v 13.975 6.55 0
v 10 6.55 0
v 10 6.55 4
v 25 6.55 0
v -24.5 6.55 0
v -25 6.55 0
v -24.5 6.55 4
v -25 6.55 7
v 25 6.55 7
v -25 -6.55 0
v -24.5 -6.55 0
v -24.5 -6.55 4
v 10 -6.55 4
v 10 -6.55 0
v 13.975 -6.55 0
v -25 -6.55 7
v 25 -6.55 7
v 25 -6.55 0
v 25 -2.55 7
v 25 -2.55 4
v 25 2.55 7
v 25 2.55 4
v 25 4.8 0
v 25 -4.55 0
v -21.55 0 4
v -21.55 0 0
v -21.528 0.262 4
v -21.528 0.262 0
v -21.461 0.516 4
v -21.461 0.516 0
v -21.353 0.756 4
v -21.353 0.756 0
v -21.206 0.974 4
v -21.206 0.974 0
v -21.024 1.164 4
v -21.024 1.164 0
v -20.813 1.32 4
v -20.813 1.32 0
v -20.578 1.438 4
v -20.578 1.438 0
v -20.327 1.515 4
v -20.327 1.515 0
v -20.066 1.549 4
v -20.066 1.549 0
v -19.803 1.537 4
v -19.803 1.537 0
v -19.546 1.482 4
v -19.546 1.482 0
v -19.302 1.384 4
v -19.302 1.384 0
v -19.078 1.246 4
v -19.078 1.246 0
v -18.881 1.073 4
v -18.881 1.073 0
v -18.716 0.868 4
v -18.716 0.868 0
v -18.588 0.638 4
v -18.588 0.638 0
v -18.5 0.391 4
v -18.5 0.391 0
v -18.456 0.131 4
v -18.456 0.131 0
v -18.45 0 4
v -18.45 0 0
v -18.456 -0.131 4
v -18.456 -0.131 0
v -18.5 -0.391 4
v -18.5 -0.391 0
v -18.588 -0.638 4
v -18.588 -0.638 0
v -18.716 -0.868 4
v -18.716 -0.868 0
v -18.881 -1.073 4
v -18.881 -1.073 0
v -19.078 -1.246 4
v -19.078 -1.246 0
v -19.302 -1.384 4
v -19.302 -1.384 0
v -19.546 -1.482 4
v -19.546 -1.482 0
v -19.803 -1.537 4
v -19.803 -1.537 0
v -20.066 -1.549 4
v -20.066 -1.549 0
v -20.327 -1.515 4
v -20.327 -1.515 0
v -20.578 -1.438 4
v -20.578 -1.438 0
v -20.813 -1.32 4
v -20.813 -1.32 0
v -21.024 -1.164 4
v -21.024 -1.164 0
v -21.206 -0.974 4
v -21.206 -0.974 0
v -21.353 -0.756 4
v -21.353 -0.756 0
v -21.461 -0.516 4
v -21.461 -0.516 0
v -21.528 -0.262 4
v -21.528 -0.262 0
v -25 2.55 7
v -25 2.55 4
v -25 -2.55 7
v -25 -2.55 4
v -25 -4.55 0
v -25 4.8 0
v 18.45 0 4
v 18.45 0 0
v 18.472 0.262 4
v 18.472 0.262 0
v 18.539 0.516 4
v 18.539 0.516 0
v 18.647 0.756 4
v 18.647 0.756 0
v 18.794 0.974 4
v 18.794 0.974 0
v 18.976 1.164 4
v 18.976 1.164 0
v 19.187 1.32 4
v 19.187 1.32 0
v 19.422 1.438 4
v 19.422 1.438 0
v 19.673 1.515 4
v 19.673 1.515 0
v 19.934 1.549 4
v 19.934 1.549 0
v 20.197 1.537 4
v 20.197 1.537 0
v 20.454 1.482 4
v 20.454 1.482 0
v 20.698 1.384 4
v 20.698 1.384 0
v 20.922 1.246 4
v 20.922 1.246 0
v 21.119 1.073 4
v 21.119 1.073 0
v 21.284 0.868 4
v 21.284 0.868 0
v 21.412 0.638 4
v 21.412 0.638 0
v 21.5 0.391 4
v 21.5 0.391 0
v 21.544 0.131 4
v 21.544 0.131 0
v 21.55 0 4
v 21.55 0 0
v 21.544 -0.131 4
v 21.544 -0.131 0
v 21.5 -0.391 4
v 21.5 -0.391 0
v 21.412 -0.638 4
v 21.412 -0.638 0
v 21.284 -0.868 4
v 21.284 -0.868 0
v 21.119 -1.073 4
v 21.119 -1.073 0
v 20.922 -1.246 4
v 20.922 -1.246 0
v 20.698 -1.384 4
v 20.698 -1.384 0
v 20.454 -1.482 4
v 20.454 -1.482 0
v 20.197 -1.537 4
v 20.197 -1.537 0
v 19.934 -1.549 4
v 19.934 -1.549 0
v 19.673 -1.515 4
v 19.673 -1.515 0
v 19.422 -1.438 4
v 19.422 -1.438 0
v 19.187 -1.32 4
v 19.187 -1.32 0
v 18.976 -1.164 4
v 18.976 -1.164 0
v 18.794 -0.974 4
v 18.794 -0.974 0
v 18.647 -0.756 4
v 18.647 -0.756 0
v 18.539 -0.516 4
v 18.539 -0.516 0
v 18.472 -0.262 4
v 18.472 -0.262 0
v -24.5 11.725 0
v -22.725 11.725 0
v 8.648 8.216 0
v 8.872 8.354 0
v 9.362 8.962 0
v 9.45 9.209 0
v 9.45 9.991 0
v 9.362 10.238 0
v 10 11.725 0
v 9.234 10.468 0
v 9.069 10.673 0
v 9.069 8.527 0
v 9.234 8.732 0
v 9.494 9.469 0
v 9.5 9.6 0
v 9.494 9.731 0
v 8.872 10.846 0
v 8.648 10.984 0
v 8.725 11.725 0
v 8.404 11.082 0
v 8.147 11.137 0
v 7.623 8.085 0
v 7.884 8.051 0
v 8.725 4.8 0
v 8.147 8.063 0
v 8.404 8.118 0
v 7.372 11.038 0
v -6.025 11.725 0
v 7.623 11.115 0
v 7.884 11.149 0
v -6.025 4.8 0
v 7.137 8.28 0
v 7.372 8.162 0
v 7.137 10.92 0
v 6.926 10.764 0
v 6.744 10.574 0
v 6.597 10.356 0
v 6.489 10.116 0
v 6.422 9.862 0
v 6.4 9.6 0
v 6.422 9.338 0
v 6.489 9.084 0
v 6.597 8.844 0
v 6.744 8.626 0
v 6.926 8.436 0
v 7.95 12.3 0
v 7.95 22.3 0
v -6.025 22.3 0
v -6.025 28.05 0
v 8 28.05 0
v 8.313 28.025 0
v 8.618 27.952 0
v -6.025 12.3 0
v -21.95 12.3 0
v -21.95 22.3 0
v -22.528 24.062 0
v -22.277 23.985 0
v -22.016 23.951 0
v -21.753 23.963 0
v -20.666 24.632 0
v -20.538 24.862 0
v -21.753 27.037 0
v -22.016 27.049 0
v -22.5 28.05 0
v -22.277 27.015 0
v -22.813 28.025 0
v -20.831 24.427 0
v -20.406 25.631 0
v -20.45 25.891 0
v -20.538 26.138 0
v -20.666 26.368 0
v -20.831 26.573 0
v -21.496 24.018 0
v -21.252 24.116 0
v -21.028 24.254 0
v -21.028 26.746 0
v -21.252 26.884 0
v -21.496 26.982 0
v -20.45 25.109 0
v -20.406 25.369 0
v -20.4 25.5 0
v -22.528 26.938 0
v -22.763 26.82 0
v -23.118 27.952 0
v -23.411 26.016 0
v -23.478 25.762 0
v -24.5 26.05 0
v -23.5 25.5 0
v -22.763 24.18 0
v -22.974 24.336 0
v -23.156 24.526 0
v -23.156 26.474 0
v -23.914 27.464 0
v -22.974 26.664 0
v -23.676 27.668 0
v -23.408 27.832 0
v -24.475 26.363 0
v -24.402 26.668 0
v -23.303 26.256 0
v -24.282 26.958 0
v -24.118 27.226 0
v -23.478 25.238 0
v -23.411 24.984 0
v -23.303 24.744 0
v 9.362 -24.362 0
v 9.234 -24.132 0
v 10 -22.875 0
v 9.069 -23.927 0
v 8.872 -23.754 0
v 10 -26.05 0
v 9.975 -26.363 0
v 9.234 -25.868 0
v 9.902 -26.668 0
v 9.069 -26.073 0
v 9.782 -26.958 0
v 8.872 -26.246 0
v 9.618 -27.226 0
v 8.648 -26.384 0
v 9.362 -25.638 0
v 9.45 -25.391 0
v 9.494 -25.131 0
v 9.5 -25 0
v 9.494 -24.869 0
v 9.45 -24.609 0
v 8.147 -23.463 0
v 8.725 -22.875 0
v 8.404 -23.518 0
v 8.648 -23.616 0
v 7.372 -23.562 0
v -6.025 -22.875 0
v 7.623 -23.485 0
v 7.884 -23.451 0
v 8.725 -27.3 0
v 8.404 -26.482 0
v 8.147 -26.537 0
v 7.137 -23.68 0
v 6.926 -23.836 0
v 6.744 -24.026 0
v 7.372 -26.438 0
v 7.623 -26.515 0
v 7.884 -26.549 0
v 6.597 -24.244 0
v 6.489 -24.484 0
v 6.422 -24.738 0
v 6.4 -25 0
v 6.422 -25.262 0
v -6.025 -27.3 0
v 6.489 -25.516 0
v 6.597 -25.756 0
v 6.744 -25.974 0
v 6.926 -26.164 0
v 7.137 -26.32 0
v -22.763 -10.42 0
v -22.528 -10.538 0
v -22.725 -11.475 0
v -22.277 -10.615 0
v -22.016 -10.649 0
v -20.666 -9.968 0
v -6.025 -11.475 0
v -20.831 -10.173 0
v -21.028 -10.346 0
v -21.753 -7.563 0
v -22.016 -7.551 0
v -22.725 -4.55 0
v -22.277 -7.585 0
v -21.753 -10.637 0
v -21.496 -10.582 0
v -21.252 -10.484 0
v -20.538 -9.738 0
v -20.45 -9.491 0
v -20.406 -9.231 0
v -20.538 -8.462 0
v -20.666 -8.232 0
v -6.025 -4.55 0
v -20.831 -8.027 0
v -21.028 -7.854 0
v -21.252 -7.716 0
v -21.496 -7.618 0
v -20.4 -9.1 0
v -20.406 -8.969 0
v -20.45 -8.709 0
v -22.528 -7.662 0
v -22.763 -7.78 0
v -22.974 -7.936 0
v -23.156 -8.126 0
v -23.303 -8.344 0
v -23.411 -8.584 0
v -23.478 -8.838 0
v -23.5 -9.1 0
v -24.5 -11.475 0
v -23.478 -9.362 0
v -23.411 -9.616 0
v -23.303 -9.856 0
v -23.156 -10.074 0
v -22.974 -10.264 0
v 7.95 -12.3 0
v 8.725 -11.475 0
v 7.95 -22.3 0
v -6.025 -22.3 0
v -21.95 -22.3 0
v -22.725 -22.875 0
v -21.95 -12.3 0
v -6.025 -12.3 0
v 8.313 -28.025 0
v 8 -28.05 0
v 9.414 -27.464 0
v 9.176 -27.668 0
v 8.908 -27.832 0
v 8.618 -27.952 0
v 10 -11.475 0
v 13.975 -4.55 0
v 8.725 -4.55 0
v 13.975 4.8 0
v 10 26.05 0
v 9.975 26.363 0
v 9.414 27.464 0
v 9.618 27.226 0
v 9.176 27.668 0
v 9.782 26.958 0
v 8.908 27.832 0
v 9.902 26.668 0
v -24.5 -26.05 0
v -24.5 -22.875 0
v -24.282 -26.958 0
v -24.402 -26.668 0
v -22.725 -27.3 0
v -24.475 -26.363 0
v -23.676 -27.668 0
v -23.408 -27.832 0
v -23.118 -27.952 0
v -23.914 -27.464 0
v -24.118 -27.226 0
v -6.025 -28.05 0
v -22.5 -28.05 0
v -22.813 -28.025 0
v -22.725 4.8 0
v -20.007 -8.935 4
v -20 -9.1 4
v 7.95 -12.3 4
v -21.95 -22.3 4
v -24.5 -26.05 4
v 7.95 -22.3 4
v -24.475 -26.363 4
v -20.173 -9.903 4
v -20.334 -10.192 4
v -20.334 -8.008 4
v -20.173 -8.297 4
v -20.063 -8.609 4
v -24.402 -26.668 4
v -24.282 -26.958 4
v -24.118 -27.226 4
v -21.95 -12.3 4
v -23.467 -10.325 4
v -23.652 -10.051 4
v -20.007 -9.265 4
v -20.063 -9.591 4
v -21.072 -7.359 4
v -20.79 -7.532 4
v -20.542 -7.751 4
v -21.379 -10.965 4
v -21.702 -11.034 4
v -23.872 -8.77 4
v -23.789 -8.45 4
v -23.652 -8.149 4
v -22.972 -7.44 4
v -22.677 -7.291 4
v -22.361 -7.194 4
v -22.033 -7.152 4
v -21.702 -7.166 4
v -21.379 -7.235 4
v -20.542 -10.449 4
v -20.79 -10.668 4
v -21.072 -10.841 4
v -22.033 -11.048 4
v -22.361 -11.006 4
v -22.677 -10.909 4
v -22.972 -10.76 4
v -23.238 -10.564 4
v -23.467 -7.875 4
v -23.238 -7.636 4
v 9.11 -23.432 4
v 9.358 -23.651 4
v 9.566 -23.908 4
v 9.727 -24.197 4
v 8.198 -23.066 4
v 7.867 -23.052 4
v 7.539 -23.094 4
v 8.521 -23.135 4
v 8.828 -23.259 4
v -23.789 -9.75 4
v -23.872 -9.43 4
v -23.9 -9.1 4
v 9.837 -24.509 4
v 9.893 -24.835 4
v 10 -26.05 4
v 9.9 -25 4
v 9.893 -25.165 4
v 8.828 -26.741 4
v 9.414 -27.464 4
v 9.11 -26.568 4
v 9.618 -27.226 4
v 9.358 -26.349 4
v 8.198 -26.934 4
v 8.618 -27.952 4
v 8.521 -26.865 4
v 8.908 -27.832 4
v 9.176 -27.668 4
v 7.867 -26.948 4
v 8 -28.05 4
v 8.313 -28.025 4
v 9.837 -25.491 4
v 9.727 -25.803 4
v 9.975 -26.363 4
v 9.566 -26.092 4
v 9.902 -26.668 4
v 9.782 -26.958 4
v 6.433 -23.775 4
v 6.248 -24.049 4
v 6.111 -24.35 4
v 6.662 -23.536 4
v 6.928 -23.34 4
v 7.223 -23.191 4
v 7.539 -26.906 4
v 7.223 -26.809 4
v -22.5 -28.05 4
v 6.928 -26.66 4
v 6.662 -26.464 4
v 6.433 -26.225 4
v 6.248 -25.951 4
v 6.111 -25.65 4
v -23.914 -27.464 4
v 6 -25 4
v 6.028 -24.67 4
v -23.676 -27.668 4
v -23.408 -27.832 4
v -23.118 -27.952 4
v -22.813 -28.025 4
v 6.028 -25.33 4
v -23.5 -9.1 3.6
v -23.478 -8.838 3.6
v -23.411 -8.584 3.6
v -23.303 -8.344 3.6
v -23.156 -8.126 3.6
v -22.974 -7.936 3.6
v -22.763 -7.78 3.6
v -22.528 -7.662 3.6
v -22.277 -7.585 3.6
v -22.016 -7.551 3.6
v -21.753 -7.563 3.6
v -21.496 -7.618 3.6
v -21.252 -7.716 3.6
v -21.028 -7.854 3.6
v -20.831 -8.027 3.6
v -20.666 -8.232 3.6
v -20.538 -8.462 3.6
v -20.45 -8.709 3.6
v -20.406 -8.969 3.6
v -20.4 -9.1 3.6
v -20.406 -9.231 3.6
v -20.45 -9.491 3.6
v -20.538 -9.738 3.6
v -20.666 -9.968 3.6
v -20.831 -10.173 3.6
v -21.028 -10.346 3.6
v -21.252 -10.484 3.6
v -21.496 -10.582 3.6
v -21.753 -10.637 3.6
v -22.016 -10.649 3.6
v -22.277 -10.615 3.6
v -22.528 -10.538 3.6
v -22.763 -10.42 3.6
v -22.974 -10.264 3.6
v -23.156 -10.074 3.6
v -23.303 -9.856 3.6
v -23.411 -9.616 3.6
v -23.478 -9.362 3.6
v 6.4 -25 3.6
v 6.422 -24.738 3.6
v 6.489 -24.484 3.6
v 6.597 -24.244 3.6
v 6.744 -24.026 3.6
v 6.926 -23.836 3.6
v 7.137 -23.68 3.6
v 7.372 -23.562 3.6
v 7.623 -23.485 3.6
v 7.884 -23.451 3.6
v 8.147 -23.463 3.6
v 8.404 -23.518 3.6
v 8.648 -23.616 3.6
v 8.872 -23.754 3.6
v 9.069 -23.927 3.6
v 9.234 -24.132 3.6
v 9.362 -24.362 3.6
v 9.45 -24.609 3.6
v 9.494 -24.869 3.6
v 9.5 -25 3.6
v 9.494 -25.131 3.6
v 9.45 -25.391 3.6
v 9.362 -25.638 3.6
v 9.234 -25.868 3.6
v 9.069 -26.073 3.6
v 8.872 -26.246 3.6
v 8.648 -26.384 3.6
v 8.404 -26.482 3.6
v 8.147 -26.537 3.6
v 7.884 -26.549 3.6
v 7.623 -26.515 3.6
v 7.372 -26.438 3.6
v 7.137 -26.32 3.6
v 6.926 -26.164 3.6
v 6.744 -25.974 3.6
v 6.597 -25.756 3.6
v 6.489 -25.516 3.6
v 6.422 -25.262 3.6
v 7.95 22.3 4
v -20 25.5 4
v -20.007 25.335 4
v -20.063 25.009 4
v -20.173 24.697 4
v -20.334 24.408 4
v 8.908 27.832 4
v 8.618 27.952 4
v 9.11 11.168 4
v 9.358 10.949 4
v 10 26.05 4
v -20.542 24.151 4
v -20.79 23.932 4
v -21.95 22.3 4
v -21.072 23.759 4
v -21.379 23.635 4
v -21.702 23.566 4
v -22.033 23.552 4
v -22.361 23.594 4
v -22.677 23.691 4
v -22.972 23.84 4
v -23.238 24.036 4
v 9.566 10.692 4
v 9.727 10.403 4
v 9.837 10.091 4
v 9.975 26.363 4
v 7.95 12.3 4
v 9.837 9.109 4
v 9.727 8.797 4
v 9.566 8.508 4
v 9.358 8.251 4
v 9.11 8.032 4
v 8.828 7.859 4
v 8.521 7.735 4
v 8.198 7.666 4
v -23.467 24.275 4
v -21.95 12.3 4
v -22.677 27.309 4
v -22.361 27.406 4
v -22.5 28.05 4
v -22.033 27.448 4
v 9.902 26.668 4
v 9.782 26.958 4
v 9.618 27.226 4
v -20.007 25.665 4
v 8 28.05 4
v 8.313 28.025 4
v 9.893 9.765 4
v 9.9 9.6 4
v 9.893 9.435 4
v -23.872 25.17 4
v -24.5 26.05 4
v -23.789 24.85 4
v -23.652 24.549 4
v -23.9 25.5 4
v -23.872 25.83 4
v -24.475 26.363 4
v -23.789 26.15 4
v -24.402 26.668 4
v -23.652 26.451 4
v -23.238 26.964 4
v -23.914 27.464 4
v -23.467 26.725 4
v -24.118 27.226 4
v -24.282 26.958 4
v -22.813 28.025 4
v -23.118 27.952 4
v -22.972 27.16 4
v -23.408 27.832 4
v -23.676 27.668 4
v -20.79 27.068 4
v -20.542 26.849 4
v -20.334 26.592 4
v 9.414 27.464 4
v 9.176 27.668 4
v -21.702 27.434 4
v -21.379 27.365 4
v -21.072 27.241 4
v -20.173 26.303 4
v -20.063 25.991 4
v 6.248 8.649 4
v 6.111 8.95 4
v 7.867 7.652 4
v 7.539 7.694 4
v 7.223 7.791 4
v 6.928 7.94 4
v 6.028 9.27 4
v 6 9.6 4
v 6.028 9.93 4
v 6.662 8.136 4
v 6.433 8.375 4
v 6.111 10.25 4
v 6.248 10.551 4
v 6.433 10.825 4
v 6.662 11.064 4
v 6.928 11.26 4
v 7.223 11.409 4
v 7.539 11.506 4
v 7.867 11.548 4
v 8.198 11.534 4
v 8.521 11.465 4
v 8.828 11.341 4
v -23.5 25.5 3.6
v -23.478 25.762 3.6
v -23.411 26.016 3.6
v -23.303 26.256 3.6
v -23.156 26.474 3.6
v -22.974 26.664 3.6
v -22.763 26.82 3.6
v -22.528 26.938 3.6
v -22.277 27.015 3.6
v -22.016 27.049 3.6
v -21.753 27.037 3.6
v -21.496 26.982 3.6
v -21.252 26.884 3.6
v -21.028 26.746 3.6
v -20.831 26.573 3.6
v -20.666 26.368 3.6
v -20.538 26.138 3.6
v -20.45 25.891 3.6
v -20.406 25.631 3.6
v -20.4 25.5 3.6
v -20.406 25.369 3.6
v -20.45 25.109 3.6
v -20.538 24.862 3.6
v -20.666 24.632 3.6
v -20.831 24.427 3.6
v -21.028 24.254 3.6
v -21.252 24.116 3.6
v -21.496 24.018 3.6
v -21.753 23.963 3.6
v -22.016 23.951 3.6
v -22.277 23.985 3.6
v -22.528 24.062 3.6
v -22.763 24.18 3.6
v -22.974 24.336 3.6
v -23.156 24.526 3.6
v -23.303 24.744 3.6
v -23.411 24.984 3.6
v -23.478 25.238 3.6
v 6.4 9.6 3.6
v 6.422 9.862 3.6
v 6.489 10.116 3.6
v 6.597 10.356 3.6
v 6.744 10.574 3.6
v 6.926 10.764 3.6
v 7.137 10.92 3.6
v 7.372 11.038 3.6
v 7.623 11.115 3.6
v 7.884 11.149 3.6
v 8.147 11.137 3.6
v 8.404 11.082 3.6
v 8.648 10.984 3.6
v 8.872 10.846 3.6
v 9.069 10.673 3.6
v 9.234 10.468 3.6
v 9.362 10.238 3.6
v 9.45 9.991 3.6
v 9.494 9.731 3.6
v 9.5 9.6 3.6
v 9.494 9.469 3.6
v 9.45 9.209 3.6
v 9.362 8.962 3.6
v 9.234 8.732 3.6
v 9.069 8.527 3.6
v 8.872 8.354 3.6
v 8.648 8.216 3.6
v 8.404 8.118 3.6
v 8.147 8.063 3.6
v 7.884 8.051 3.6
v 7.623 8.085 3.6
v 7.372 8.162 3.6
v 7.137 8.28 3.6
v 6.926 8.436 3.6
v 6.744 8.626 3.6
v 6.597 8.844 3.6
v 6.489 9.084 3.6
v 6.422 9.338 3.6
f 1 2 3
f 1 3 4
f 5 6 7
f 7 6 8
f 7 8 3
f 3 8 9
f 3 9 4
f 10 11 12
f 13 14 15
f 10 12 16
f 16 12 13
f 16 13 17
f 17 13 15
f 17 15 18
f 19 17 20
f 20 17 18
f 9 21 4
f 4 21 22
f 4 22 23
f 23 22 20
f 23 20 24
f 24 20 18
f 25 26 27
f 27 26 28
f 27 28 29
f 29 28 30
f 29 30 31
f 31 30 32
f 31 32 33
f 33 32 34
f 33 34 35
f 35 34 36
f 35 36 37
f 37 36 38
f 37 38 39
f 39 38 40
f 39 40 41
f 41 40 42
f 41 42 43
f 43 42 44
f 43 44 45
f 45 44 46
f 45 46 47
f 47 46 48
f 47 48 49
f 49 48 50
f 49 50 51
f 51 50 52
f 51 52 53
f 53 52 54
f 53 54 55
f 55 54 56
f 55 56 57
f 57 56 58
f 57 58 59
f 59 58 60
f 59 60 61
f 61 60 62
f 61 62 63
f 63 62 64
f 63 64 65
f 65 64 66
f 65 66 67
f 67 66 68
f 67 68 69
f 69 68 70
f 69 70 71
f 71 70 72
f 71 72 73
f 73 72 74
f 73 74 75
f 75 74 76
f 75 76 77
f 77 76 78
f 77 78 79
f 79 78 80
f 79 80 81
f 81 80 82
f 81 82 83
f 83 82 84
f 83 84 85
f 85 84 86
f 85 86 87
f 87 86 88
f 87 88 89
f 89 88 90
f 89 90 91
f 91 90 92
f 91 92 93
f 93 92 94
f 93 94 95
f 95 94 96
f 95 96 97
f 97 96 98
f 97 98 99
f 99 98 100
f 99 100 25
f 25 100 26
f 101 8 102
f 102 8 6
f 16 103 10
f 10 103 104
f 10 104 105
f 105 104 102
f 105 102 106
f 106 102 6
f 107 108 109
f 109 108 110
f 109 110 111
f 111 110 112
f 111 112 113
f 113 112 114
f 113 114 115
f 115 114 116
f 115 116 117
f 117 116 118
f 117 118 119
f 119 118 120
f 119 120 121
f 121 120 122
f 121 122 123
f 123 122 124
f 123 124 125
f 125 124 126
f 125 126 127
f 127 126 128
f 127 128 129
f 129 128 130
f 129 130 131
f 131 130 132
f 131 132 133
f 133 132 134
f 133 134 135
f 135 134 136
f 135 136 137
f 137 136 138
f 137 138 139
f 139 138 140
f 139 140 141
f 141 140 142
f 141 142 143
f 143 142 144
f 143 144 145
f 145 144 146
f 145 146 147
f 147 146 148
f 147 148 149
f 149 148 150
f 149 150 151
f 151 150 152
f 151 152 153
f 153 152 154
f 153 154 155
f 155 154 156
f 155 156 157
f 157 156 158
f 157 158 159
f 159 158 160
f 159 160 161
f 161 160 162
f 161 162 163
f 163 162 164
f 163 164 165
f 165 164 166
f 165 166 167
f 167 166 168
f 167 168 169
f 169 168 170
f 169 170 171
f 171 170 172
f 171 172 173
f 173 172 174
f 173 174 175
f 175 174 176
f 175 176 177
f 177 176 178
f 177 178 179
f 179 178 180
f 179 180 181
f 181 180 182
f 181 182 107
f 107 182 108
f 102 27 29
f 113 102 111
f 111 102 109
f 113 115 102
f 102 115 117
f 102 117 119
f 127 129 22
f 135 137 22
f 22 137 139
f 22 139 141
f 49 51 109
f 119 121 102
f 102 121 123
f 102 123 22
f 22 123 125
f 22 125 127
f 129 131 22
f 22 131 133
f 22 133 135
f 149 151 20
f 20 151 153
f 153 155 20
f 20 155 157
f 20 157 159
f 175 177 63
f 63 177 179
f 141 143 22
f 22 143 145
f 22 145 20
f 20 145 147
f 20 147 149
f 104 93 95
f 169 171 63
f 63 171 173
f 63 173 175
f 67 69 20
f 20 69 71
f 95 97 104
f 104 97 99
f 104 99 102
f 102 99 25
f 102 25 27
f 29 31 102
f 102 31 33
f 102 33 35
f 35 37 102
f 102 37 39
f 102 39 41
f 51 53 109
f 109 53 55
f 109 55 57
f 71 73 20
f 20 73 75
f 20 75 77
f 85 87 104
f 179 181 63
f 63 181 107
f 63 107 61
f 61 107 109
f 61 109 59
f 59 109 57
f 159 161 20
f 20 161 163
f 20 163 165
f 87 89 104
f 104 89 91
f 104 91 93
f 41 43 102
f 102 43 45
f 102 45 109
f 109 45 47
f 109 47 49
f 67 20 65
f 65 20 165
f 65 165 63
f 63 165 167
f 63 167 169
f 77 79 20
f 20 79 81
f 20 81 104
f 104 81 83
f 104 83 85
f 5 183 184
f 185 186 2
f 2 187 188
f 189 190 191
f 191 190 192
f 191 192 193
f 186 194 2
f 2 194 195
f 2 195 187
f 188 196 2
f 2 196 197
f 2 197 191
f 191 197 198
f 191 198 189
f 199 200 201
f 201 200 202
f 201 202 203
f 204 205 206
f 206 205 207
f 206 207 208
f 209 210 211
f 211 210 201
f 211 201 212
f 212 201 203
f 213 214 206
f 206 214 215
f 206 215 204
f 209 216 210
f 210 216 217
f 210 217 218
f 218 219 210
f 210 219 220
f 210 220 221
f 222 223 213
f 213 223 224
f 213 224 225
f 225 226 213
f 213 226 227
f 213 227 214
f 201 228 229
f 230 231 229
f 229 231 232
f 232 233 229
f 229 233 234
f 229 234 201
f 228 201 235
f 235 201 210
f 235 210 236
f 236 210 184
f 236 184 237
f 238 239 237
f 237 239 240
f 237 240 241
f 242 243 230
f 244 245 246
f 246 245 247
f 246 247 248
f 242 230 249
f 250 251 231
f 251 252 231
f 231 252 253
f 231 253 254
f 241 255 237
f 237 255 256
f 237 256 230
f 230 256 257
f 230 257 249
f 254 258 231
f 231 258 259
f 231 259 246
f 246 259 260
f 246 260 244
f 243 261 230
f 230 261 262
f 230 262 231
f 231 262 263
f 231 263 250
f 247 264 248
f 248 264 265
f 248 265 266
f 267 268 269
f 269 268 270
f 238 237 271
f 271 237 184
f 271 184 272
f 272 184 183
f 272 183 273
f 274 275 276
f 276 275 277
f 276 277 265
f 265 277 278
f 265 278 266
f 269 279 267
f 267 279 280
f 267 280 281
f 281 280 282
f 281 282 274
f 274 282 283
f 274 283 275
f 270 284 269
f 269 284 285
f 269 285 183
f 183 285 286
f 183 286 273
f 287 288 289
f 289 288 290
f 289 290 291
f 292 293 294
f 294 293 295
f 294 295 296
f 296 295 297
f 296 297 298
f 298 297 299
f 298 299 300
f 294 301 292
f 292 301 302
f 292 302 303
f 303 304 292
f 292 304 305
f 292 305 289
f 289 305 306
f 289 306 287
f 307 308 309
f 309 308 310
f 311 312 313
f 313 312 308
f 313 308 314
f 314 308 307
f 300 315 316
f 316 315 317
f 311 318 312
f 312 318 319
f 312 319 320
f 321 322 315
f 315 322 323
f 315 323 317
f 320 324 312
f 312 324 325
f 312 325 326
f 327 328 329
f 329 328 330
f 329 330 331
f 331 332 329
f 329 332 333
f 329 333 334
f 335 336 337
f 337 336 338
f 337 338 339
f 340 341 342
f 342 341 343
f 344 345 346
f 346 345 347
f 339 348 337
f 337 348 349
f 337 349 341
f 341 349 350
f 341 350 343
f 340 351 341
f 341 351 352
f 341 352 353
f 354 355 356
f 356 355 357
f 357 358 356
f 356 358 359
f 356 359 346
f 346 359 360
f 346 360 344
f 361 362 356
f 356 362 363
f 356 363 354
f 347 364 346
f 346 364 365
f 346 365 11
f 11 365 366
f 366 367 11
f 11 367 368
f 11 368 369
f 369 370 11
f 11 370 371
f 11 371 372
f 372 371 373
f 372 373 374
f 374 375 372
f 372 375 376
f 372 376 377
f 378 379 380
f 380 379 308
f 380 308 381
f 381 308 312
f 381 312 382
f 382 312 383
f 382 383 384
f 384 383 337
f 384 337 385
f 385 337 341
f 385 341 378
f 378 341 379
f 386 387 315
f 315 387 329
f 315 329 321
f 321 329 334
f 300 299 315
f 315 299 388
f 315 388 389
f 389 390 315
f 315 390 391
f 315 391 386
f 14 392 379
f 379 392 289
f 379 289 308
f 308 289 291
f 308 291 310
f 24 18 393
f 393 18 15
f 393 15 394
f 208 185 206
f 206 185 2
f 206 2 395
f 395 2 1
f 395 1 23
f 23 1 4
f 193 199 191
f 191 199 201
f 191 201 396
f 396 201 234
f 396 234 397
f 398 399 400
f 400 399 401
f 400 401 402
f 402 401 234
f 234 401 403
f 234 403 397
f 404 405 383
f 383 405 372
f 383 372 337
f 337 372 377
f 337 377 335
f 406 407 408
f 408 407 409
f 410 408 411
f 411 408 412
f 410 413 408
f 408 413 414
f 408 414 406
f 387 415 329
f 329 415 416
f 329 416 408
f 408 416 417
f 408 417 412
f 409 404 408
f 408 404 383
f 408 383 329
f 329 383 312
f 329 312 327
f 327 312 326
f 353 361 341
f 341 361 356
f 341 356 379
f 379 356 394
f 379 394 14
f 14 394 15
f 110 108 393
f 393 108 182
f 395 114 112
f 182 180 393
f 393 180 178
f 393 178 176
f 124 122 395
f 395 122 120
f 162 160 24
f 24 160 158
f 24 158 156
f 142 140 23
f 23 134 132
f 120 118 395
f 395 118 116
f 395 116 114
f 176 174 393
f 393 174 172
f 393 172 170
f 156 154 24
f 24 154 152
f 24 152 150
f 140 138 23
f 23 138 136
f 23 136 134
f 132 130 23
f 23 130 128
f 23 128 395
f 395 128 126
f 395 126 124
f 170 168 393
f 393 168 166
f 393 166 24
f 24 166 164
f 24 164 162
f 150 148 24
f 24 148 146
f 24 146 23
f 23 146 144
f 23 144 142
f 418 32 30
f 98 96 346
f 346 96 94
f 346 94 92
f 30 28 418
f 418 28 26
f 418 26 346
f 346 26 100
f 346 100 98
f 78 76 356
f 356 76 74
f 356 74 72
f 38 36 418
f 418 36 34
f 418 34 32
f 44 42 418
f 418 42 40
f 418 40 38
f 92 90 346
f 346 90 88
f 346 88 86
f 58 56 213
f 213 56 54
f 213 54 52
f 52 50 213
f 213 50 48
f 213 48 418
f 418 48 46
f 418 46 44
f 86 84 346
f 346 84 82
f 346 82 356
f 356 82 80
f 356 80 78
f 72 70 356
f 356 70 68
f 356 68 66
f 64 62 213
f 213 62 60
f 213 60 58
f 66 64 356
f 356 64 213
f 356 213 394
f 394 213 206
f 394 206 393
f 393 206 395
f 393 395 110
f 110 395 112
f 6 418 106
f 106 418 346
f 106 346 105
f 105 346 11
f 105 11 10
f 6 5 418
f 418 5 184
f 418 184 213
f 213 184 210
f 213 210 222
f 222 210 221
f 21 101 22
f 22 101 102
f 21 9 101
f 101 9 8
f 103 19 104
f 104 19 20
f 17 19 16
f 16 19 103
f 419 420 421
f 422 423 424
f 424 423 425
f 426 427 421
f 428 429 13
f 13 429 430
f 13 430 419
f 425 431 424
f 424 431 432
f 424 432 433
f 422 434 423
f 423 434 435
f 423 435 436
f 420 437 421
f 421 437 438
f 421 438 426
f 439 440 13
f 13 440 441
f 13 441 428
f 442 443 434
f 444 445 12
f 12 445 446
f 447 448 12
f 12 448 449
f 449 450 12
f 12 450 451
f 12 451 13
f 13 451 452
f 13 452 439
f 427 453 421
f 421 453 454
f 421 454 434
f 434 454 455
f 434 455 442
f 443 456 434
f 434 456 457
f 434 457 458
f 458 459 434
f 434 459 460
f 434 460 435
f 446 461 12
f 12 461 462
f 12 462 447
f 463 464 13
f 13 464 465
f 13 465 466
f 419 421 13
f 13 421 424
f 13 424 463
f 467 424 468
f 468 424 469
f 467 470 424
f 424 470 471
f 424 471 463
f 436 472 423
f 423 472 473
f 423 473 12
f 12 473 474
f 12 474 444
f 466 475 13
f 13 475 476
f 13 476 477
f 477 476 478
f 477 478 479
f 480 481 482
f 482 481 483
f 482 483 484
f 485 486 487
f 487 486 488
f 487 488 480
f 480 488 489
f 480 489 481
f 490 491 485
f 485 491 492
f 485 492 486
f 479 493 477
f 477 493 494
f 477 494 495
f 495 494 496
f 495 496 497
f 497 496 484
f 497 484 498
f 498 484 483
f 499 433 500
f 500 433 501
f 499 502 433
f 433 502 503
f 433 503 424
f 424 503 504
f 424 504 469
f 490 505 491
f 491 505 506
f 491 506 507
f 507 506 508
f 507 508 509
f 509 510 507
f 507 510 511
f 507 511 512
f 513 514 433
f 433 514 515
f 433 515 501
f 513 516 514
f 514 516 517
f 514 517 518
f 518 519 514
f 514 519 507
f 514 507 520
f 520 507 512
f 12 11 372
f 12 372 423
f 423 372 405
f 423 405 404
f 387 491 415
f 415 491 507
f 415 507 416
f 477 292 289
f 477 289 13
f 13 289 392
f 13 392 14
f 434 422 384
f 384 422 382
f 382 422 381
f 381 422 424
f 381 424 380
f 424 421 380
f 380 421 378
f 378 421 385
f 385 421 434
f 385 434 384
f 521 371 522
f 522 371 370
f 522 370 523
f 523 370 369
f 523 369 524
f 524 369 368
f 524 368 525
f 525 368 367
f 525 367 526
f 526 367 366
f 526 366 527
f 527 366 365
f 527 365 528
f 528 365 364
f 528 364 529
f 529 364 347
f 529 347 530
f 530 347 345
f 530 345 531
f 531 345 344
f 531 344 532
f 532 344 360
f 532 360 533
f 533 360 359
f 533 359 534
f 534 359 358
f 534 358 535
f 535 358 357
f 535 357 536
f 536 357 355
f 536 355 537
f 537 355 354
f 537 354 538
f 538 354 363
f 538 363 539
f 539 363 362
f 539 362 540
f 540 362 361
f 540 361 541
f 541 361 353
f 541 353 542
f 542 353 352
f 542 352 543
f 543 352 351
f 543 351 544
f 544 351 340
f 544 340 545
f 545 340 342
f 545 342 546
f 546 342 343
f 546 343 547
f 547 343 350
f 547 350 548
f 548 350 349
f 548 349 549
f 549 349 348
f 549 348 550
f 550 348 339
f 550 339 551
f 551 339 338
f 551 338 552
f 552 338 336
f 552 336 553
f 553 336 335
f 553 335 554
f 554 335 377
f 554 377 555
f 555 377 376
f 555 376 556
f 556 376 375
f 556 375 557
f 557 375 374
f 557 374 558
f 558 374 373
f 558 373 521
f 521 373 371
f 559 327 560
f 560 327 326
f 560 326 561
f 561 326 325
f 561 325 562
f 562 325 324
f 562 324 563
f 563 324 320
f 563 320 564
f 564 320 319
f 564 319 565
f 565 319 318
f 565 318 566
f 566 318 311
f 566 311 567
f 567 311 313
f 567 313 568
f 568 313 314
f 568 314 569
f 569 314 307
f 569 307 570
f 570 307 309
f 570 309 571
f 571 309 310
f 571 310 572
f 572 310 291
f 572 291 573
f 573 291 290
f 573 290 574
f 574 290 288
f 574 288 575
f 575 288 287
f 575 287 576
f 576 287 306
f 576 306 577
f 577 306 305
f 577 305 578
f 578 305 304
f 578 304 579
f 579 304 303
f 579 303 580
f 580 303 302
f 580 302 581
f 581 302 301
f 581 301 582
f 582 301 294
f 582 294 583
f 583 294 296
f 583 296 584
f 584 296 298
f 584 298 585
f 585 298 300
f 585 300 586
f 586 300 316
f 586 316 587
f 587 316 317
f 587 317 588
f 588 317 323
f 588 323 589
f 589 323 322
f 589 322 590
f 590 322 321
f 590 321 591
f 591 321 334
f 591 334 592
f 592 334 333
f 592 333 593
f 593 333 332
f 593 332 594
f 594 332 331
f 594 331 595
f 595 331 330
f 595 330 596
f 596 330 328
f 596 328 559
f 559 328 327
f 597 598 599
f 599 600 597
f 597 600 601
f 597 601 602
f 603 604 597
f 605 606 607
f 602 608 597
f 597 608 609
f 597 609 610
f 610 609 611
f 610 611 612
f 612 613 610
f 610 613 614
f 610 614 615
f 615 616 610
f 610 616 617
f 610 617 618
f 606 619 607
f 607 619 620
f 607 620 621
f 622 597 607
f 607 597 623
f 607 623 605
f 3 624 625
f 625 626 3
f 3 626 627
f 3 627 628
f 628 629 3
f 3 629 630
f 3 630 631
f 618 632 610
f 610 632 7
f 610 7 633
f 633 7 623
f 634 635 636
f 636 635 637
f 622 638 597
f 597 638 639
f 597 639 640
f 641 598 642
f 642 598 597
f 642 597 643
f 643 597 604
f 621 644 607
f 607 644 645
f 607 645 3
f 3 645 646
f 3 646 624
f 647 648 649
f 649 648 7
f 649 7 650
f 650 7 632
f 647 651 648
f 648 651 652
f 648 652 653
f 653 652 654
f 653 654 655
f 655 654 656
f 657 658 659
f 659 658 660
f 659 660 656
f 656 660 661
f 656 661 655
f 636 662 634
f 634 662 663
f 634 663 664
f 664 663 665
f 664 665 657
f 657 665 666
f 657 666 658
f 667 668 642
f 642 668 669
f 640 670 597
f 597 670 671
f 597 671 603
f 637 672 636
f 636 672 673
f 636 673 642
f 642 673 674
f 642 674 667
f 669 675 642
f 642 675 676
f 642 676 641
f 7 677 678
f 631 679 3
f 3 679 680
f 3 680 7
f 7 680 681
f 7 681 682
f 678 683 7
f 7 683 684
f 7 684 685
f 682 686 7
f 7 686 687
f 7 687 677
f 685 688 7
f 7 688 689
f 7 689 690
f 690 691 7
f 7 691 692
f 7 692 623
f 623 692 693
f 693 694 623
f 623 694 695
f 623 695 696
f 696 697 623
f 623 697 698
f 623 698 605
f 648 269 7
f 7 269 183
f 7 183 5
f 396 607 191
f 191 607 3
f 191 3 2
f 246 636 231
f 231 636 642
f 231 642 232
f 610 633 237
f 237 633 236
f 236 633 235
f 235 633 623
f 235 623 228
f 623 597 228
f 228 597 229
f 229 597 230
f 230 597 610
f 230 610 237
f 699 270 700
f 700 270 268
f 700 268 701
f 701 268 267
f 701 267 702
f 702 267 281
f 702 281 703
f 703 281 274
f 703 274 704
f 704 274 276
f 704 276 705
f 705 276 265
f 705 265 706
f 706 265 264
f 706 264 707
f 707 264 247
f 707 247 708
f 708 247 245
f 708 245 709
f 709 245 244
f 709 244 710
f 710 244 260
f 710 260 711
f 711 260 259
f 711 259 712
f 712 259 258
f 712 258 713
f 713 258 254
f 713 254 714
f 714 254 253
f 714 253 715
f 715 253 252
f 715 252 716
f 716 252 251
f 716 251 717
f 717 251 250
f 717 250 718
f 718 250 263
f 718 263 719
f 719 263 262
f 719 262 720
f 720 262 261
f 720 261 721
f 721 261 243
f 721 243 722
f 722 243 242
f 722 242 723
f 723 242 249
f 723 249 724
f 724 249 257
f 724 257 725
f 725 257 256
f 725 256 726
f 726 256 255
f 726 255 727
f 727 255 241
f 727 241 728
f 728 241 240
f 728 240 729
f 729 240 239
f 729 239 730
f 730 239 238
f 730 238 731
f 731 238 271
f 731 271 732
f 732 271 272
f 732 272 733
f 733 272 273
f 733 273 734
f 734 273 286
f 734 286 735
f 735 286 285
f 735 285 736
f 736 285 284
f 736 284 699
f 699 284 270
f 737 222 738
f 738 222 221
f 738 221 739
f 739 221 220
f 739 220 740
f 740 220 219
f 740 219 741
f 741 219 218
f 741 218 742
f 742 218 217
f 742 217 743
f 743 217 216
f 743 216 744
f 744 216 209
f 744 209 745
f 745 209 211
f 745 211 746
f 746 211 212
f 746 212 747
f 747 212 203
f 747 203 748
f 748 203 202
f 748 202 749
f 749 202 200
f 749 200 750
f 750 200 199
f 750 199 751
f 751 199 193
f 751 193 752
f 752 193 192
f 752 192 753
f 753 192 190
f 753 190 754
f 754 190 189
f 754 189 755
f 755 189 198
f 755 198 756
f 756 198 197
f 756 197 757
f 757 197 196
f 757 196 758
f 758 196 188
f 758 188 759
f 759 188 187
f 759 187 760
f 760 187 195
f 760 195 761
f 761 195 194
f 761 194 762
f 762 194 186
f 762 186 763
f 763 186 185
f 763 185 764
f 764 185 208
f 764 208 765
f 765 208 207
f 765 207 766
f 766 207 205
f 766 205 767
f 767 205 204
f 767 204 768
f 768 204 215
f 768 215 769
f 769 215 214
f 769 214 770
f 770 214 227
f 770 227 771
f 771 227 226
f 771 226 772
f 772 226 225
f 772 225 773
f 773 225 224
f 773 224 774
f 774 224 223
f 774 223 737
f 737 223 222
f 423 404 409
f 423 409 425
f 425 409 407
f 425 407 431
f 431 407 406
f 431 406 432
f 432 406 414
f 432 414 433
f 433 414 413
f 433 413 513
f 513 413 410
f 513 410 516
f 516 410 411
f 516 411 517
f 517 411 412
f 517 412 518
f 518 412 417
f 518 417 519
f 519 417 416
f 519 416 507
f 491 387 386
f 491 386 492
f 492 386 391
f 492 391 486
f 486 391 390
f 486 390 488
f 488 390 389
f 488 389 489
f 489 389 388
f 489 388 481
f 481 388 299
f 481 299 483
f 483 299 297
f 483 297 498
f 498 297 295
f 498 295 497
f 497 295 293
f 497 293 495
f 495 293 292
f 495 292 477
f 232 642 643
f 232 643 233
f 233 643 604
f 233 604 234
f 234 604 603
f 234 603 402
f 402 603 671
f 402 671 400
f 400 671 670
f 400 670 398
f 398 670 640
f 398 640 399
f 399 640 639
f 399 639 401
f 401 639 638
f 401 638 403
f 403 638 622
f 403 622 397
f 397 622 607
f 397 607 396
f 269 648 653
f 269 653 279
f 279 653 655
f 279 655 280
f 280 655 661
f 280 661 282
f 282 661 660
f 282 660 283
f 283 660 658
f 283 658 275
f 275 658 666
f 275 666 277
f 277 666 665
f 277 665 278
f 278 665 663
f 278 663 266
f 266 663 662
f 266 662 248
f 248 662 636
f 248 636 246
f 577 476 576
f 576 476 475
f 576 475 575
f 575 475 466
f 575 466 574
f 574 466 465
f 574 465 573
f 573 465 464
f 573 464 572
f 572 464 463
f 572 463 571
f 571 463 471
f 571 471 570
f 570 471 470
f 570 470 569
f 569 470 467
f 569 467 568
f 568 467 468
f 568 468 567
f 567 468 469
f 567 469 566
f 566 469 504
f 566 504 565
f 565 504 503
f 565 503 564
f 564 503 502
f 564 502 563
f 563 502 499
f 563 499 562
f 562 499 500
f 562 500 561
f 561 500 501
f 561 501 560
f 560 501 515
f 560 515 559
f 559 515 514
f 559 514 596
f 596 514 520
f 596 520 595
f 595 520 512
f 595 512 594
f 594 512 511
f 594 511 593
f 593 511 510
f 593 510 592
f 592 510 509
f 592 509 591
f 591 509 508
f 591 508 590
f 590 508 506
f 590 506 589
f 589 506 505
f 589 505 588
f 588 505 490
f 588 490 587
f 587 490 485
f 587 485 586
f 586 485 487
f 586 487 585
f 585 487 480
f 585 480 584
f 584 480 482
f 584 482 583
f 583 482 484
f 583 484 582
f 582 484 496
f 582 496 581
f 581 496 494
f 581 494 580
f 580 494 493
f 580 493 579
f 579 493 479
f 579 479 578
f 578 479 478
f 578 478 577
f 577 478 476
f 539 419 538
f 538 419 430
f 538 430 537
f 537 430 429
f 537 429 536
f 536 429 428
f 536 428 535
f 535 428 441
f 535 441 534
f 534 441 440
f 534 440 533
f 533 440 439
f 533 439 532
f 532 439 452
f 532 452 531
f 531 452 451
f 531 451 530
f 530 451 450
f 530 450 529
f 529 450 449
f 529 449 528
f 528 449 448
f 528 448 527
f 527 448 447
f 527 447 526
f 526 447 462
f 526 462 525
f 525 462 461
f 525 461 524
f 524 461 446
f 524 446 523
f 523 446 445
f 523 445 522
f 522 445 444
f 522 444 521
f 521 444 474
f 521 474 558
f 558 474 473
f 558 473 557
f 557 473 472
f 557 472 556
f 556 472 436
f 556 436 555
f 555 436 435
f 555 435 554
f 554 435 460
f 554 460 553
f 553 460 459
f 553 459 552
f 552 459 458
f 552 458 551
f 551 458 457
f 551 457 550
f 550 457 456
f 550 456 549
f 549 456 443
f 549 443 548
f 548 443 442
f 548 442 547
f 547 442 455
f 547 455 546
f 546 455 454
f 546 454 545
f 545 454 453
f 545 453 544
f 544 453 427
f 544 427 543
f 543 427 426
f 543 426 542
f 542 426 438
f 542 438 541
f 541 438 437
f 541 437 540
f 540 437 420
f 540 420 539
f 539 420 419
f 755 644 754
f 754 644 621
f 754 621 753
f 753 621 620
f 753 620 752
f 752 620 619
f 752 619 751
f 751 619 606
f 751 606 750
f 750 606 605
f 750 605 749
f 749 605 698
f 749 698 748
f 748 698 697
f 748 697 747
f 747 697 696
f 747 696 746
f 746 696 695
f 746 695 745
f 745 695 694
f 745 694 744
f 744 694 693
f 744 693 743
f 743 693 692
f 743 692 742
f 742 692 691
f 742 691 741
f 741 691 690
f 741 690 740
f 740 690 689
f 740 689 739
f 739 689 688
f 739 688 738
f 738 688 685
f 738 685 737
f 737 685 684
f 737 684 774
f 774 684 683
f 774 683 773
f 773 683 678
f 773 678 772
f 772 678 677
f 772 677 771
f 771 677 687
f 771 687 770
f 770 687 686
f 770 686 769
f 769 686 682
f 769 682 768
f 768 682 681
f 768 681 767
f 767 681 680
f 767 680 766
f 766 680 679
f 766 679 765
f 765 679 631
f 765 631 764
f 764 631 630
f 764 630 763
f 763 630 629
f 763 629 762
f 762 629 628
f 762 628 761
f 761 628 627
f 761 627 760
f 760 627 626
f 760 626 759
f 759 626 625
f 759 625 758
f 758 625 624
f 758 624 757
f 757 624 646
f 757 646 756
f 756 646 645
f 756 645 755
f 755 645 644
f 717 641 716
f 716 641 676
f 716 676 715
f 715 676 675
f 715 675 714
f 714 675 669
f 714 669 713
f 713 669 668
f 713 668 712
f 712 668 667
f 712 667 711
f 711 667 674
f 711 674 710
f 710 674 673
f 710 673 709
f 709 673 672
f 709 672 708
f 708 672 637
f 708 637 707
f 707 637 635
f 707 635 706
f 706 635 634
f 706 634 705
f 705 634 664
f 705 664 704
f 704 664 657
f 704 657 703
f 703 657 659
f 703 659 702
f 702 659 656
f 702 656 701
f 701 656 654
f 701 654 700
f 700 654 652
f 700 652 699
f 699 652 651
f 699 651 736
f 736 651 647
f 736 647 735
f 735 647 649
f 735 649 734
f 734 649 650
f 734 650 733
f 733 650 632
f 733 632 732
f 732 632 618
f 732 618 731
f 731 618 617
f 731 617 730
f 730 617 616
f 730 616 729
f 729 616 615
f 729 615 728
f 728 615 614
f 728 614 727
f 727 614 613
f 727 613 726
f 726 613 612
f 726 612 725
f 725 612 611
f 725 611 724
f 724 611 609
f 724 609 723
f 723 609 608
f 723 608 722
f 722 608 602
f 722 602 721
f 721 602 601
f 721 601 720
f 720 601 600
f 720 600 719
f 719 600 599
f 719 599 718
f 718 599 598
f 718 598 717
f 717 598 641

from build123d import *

# Parameters (mm, degrees)
CROQUIS1_R              = 1.55
SALIENTE_EXTRUIR1_DEPTH = 4
CROQUIS2_W              = 50
CROQUIS2_H              = 4
SALIENTE_EXTRUIR2_DEPTH = 7
SALIENTE_EXTRUIR3_START = -7
CROQUIS3_W              = 34.5
CROQUIS3_H              = 21.5
CROQUIS3_R              = 1.55
CROQUIS3_W_2            = 29.9
CROQUIS3_H_2            = 10
SALIENTE_EXTRUIR3_DEPTH = 4
REDONDEO1_R             = 2
CHAFL_N1_SIZE           = 0.4


with BuildPart() as part:
    # Croquis1 → Saliente-Extruir1 (new body)
    # profile 1 of 3: a face of its own
    with BuildSketch(Plane.XY):
        with BuildLine():
            ThreePointArc((-20, 2.55), (-22.55, 0), (-20, -2.55))
            Line((-20, -2.55), (-25, -2.55))
            Line((-25, -2.55), (-25, 2.55))
            Line((-25, 2.55), (-20, 2.55))
        make_face()
    # profile 2 of 3: a face of its own
    with BuildSketch(Plane.XY):
        with BuildLine():
            Line((-20, -2.55), (20, -2.55))
            ThreePointArc((20, -2.55), (22.55, 0), (20, 2.55))
            Line((20, 2.55), (-20, 2.55))
            ThreePointArc((-20, 2.55), (-22.55, 0), (-20, -2.55))
        make_face()
        with Locations((-20, 0)):
            Circle(CROQUIS1_R, mode=Mode.SUBTRACT)
        with Locations((20, 0)):
            Circle(CROQUIS1_R, mode=Mode.SUBTRACT)
    # profile 3 of 3: a face of its own
    with BuildSketch(Plane.XY):
        with BuildLine():
            ThreePointArc((20, -2.55), (22.55, 0), (20, 2.55))
            Line((20, 2.55), (25, 2.55))
            Line((25, 2.55), (25, -2.55))
            Line((25, -2.55), (20, -2.55))
        make_face()
    extrude(amount=SALIENTE_EXTRUIR1_DEPTH)

    # Croquis2 → Saliente-Extruir2 (add)
    with BuildSketch(Plane.XY):
        with Locations((0, 4.55)):
            Rectangle(CROQUIS2_W, CROQUIS2_H)
        with Locations((0, -4.55)):
            Rectangle(CROQUIS2_W, CROQUIS2_H)
    extrude(amount=SALIENTE_EXTRUIR2_DEPTH)

    # Croquis3 → Saliente-Extruir3 (add)
    # profile 1 of 2: a face of its own
    with BuildSketch(Plane.XY.offset(7).offset(SALIENTE_EXTRUIR3_START)):
        with Locations((-7.25, 17.3)):
            Rectangle(CROQUIS3_W, CROQUIS3_H)
        with Locations((-21.95, 25.5)):
            Circle(CROQUIS3_R, mode=Mode.SUBTRACT)
        with Locations((7.95, 9.6)):
            Circle(CROQUIS3_R, mode=Mode.SUBTRACT)
        with Locations((-7, 17.3)):
            Rectangle(CROQUIS3_W_2, CROQUIS3_H_2, mode=Mode.SUBTRACT)
    # profile 2 of 2: a face of its own
    with BuildSketch(Plane.XY.offset(7).offset(SALIENTE_EXTRUIR3_START)):
        with Locations((-7.25, -17.3)):
            Rectangle(CROQUIS3_W, CROQUIS3_H)
        with Locations((-21.95, -9.1)):
            Circle(CROQUIS3_R, mode=Mode.SUBTRACT)
        with Locations((-7, -17.3)):
            Rectangle(CROQUIS3_W_2, CROQUIS3_H_2, mode=Mode.SUBTRACT)
        with Locations((7.95, -25)):
            Circle(CROQUIS3_R, mode=Mode.SUBTRACT)
    extrude(amount=SALIENTE_EXTRUIR3_DEPTH)

    # Redondeo1
    redondeo1_edges = [part.edges().sort_by_distance(p)[0] for p in [
        (-24.5, 28.05, 2),
        (10, 28.05, 2),
        (-24.5, -28.05, 2),
        (10, -28.05, 2),
    ]]
    fillet(redondeo1_edges, radius=REDONDEO1_R)

    # Chaflán1
    chafl_n1_edges = [part.edges().sort_by_distance(p)[0] for p in [
        (-23.5, 25.5, 4),
        (6.4, 9.6, 4),
        (-23.5, -9.1, 4),
        (6.4, -25, 4),
    ]]
    chamfer(chafl_n1_edges, length=CHAFL_N1_SIZE)


solid = part.part
